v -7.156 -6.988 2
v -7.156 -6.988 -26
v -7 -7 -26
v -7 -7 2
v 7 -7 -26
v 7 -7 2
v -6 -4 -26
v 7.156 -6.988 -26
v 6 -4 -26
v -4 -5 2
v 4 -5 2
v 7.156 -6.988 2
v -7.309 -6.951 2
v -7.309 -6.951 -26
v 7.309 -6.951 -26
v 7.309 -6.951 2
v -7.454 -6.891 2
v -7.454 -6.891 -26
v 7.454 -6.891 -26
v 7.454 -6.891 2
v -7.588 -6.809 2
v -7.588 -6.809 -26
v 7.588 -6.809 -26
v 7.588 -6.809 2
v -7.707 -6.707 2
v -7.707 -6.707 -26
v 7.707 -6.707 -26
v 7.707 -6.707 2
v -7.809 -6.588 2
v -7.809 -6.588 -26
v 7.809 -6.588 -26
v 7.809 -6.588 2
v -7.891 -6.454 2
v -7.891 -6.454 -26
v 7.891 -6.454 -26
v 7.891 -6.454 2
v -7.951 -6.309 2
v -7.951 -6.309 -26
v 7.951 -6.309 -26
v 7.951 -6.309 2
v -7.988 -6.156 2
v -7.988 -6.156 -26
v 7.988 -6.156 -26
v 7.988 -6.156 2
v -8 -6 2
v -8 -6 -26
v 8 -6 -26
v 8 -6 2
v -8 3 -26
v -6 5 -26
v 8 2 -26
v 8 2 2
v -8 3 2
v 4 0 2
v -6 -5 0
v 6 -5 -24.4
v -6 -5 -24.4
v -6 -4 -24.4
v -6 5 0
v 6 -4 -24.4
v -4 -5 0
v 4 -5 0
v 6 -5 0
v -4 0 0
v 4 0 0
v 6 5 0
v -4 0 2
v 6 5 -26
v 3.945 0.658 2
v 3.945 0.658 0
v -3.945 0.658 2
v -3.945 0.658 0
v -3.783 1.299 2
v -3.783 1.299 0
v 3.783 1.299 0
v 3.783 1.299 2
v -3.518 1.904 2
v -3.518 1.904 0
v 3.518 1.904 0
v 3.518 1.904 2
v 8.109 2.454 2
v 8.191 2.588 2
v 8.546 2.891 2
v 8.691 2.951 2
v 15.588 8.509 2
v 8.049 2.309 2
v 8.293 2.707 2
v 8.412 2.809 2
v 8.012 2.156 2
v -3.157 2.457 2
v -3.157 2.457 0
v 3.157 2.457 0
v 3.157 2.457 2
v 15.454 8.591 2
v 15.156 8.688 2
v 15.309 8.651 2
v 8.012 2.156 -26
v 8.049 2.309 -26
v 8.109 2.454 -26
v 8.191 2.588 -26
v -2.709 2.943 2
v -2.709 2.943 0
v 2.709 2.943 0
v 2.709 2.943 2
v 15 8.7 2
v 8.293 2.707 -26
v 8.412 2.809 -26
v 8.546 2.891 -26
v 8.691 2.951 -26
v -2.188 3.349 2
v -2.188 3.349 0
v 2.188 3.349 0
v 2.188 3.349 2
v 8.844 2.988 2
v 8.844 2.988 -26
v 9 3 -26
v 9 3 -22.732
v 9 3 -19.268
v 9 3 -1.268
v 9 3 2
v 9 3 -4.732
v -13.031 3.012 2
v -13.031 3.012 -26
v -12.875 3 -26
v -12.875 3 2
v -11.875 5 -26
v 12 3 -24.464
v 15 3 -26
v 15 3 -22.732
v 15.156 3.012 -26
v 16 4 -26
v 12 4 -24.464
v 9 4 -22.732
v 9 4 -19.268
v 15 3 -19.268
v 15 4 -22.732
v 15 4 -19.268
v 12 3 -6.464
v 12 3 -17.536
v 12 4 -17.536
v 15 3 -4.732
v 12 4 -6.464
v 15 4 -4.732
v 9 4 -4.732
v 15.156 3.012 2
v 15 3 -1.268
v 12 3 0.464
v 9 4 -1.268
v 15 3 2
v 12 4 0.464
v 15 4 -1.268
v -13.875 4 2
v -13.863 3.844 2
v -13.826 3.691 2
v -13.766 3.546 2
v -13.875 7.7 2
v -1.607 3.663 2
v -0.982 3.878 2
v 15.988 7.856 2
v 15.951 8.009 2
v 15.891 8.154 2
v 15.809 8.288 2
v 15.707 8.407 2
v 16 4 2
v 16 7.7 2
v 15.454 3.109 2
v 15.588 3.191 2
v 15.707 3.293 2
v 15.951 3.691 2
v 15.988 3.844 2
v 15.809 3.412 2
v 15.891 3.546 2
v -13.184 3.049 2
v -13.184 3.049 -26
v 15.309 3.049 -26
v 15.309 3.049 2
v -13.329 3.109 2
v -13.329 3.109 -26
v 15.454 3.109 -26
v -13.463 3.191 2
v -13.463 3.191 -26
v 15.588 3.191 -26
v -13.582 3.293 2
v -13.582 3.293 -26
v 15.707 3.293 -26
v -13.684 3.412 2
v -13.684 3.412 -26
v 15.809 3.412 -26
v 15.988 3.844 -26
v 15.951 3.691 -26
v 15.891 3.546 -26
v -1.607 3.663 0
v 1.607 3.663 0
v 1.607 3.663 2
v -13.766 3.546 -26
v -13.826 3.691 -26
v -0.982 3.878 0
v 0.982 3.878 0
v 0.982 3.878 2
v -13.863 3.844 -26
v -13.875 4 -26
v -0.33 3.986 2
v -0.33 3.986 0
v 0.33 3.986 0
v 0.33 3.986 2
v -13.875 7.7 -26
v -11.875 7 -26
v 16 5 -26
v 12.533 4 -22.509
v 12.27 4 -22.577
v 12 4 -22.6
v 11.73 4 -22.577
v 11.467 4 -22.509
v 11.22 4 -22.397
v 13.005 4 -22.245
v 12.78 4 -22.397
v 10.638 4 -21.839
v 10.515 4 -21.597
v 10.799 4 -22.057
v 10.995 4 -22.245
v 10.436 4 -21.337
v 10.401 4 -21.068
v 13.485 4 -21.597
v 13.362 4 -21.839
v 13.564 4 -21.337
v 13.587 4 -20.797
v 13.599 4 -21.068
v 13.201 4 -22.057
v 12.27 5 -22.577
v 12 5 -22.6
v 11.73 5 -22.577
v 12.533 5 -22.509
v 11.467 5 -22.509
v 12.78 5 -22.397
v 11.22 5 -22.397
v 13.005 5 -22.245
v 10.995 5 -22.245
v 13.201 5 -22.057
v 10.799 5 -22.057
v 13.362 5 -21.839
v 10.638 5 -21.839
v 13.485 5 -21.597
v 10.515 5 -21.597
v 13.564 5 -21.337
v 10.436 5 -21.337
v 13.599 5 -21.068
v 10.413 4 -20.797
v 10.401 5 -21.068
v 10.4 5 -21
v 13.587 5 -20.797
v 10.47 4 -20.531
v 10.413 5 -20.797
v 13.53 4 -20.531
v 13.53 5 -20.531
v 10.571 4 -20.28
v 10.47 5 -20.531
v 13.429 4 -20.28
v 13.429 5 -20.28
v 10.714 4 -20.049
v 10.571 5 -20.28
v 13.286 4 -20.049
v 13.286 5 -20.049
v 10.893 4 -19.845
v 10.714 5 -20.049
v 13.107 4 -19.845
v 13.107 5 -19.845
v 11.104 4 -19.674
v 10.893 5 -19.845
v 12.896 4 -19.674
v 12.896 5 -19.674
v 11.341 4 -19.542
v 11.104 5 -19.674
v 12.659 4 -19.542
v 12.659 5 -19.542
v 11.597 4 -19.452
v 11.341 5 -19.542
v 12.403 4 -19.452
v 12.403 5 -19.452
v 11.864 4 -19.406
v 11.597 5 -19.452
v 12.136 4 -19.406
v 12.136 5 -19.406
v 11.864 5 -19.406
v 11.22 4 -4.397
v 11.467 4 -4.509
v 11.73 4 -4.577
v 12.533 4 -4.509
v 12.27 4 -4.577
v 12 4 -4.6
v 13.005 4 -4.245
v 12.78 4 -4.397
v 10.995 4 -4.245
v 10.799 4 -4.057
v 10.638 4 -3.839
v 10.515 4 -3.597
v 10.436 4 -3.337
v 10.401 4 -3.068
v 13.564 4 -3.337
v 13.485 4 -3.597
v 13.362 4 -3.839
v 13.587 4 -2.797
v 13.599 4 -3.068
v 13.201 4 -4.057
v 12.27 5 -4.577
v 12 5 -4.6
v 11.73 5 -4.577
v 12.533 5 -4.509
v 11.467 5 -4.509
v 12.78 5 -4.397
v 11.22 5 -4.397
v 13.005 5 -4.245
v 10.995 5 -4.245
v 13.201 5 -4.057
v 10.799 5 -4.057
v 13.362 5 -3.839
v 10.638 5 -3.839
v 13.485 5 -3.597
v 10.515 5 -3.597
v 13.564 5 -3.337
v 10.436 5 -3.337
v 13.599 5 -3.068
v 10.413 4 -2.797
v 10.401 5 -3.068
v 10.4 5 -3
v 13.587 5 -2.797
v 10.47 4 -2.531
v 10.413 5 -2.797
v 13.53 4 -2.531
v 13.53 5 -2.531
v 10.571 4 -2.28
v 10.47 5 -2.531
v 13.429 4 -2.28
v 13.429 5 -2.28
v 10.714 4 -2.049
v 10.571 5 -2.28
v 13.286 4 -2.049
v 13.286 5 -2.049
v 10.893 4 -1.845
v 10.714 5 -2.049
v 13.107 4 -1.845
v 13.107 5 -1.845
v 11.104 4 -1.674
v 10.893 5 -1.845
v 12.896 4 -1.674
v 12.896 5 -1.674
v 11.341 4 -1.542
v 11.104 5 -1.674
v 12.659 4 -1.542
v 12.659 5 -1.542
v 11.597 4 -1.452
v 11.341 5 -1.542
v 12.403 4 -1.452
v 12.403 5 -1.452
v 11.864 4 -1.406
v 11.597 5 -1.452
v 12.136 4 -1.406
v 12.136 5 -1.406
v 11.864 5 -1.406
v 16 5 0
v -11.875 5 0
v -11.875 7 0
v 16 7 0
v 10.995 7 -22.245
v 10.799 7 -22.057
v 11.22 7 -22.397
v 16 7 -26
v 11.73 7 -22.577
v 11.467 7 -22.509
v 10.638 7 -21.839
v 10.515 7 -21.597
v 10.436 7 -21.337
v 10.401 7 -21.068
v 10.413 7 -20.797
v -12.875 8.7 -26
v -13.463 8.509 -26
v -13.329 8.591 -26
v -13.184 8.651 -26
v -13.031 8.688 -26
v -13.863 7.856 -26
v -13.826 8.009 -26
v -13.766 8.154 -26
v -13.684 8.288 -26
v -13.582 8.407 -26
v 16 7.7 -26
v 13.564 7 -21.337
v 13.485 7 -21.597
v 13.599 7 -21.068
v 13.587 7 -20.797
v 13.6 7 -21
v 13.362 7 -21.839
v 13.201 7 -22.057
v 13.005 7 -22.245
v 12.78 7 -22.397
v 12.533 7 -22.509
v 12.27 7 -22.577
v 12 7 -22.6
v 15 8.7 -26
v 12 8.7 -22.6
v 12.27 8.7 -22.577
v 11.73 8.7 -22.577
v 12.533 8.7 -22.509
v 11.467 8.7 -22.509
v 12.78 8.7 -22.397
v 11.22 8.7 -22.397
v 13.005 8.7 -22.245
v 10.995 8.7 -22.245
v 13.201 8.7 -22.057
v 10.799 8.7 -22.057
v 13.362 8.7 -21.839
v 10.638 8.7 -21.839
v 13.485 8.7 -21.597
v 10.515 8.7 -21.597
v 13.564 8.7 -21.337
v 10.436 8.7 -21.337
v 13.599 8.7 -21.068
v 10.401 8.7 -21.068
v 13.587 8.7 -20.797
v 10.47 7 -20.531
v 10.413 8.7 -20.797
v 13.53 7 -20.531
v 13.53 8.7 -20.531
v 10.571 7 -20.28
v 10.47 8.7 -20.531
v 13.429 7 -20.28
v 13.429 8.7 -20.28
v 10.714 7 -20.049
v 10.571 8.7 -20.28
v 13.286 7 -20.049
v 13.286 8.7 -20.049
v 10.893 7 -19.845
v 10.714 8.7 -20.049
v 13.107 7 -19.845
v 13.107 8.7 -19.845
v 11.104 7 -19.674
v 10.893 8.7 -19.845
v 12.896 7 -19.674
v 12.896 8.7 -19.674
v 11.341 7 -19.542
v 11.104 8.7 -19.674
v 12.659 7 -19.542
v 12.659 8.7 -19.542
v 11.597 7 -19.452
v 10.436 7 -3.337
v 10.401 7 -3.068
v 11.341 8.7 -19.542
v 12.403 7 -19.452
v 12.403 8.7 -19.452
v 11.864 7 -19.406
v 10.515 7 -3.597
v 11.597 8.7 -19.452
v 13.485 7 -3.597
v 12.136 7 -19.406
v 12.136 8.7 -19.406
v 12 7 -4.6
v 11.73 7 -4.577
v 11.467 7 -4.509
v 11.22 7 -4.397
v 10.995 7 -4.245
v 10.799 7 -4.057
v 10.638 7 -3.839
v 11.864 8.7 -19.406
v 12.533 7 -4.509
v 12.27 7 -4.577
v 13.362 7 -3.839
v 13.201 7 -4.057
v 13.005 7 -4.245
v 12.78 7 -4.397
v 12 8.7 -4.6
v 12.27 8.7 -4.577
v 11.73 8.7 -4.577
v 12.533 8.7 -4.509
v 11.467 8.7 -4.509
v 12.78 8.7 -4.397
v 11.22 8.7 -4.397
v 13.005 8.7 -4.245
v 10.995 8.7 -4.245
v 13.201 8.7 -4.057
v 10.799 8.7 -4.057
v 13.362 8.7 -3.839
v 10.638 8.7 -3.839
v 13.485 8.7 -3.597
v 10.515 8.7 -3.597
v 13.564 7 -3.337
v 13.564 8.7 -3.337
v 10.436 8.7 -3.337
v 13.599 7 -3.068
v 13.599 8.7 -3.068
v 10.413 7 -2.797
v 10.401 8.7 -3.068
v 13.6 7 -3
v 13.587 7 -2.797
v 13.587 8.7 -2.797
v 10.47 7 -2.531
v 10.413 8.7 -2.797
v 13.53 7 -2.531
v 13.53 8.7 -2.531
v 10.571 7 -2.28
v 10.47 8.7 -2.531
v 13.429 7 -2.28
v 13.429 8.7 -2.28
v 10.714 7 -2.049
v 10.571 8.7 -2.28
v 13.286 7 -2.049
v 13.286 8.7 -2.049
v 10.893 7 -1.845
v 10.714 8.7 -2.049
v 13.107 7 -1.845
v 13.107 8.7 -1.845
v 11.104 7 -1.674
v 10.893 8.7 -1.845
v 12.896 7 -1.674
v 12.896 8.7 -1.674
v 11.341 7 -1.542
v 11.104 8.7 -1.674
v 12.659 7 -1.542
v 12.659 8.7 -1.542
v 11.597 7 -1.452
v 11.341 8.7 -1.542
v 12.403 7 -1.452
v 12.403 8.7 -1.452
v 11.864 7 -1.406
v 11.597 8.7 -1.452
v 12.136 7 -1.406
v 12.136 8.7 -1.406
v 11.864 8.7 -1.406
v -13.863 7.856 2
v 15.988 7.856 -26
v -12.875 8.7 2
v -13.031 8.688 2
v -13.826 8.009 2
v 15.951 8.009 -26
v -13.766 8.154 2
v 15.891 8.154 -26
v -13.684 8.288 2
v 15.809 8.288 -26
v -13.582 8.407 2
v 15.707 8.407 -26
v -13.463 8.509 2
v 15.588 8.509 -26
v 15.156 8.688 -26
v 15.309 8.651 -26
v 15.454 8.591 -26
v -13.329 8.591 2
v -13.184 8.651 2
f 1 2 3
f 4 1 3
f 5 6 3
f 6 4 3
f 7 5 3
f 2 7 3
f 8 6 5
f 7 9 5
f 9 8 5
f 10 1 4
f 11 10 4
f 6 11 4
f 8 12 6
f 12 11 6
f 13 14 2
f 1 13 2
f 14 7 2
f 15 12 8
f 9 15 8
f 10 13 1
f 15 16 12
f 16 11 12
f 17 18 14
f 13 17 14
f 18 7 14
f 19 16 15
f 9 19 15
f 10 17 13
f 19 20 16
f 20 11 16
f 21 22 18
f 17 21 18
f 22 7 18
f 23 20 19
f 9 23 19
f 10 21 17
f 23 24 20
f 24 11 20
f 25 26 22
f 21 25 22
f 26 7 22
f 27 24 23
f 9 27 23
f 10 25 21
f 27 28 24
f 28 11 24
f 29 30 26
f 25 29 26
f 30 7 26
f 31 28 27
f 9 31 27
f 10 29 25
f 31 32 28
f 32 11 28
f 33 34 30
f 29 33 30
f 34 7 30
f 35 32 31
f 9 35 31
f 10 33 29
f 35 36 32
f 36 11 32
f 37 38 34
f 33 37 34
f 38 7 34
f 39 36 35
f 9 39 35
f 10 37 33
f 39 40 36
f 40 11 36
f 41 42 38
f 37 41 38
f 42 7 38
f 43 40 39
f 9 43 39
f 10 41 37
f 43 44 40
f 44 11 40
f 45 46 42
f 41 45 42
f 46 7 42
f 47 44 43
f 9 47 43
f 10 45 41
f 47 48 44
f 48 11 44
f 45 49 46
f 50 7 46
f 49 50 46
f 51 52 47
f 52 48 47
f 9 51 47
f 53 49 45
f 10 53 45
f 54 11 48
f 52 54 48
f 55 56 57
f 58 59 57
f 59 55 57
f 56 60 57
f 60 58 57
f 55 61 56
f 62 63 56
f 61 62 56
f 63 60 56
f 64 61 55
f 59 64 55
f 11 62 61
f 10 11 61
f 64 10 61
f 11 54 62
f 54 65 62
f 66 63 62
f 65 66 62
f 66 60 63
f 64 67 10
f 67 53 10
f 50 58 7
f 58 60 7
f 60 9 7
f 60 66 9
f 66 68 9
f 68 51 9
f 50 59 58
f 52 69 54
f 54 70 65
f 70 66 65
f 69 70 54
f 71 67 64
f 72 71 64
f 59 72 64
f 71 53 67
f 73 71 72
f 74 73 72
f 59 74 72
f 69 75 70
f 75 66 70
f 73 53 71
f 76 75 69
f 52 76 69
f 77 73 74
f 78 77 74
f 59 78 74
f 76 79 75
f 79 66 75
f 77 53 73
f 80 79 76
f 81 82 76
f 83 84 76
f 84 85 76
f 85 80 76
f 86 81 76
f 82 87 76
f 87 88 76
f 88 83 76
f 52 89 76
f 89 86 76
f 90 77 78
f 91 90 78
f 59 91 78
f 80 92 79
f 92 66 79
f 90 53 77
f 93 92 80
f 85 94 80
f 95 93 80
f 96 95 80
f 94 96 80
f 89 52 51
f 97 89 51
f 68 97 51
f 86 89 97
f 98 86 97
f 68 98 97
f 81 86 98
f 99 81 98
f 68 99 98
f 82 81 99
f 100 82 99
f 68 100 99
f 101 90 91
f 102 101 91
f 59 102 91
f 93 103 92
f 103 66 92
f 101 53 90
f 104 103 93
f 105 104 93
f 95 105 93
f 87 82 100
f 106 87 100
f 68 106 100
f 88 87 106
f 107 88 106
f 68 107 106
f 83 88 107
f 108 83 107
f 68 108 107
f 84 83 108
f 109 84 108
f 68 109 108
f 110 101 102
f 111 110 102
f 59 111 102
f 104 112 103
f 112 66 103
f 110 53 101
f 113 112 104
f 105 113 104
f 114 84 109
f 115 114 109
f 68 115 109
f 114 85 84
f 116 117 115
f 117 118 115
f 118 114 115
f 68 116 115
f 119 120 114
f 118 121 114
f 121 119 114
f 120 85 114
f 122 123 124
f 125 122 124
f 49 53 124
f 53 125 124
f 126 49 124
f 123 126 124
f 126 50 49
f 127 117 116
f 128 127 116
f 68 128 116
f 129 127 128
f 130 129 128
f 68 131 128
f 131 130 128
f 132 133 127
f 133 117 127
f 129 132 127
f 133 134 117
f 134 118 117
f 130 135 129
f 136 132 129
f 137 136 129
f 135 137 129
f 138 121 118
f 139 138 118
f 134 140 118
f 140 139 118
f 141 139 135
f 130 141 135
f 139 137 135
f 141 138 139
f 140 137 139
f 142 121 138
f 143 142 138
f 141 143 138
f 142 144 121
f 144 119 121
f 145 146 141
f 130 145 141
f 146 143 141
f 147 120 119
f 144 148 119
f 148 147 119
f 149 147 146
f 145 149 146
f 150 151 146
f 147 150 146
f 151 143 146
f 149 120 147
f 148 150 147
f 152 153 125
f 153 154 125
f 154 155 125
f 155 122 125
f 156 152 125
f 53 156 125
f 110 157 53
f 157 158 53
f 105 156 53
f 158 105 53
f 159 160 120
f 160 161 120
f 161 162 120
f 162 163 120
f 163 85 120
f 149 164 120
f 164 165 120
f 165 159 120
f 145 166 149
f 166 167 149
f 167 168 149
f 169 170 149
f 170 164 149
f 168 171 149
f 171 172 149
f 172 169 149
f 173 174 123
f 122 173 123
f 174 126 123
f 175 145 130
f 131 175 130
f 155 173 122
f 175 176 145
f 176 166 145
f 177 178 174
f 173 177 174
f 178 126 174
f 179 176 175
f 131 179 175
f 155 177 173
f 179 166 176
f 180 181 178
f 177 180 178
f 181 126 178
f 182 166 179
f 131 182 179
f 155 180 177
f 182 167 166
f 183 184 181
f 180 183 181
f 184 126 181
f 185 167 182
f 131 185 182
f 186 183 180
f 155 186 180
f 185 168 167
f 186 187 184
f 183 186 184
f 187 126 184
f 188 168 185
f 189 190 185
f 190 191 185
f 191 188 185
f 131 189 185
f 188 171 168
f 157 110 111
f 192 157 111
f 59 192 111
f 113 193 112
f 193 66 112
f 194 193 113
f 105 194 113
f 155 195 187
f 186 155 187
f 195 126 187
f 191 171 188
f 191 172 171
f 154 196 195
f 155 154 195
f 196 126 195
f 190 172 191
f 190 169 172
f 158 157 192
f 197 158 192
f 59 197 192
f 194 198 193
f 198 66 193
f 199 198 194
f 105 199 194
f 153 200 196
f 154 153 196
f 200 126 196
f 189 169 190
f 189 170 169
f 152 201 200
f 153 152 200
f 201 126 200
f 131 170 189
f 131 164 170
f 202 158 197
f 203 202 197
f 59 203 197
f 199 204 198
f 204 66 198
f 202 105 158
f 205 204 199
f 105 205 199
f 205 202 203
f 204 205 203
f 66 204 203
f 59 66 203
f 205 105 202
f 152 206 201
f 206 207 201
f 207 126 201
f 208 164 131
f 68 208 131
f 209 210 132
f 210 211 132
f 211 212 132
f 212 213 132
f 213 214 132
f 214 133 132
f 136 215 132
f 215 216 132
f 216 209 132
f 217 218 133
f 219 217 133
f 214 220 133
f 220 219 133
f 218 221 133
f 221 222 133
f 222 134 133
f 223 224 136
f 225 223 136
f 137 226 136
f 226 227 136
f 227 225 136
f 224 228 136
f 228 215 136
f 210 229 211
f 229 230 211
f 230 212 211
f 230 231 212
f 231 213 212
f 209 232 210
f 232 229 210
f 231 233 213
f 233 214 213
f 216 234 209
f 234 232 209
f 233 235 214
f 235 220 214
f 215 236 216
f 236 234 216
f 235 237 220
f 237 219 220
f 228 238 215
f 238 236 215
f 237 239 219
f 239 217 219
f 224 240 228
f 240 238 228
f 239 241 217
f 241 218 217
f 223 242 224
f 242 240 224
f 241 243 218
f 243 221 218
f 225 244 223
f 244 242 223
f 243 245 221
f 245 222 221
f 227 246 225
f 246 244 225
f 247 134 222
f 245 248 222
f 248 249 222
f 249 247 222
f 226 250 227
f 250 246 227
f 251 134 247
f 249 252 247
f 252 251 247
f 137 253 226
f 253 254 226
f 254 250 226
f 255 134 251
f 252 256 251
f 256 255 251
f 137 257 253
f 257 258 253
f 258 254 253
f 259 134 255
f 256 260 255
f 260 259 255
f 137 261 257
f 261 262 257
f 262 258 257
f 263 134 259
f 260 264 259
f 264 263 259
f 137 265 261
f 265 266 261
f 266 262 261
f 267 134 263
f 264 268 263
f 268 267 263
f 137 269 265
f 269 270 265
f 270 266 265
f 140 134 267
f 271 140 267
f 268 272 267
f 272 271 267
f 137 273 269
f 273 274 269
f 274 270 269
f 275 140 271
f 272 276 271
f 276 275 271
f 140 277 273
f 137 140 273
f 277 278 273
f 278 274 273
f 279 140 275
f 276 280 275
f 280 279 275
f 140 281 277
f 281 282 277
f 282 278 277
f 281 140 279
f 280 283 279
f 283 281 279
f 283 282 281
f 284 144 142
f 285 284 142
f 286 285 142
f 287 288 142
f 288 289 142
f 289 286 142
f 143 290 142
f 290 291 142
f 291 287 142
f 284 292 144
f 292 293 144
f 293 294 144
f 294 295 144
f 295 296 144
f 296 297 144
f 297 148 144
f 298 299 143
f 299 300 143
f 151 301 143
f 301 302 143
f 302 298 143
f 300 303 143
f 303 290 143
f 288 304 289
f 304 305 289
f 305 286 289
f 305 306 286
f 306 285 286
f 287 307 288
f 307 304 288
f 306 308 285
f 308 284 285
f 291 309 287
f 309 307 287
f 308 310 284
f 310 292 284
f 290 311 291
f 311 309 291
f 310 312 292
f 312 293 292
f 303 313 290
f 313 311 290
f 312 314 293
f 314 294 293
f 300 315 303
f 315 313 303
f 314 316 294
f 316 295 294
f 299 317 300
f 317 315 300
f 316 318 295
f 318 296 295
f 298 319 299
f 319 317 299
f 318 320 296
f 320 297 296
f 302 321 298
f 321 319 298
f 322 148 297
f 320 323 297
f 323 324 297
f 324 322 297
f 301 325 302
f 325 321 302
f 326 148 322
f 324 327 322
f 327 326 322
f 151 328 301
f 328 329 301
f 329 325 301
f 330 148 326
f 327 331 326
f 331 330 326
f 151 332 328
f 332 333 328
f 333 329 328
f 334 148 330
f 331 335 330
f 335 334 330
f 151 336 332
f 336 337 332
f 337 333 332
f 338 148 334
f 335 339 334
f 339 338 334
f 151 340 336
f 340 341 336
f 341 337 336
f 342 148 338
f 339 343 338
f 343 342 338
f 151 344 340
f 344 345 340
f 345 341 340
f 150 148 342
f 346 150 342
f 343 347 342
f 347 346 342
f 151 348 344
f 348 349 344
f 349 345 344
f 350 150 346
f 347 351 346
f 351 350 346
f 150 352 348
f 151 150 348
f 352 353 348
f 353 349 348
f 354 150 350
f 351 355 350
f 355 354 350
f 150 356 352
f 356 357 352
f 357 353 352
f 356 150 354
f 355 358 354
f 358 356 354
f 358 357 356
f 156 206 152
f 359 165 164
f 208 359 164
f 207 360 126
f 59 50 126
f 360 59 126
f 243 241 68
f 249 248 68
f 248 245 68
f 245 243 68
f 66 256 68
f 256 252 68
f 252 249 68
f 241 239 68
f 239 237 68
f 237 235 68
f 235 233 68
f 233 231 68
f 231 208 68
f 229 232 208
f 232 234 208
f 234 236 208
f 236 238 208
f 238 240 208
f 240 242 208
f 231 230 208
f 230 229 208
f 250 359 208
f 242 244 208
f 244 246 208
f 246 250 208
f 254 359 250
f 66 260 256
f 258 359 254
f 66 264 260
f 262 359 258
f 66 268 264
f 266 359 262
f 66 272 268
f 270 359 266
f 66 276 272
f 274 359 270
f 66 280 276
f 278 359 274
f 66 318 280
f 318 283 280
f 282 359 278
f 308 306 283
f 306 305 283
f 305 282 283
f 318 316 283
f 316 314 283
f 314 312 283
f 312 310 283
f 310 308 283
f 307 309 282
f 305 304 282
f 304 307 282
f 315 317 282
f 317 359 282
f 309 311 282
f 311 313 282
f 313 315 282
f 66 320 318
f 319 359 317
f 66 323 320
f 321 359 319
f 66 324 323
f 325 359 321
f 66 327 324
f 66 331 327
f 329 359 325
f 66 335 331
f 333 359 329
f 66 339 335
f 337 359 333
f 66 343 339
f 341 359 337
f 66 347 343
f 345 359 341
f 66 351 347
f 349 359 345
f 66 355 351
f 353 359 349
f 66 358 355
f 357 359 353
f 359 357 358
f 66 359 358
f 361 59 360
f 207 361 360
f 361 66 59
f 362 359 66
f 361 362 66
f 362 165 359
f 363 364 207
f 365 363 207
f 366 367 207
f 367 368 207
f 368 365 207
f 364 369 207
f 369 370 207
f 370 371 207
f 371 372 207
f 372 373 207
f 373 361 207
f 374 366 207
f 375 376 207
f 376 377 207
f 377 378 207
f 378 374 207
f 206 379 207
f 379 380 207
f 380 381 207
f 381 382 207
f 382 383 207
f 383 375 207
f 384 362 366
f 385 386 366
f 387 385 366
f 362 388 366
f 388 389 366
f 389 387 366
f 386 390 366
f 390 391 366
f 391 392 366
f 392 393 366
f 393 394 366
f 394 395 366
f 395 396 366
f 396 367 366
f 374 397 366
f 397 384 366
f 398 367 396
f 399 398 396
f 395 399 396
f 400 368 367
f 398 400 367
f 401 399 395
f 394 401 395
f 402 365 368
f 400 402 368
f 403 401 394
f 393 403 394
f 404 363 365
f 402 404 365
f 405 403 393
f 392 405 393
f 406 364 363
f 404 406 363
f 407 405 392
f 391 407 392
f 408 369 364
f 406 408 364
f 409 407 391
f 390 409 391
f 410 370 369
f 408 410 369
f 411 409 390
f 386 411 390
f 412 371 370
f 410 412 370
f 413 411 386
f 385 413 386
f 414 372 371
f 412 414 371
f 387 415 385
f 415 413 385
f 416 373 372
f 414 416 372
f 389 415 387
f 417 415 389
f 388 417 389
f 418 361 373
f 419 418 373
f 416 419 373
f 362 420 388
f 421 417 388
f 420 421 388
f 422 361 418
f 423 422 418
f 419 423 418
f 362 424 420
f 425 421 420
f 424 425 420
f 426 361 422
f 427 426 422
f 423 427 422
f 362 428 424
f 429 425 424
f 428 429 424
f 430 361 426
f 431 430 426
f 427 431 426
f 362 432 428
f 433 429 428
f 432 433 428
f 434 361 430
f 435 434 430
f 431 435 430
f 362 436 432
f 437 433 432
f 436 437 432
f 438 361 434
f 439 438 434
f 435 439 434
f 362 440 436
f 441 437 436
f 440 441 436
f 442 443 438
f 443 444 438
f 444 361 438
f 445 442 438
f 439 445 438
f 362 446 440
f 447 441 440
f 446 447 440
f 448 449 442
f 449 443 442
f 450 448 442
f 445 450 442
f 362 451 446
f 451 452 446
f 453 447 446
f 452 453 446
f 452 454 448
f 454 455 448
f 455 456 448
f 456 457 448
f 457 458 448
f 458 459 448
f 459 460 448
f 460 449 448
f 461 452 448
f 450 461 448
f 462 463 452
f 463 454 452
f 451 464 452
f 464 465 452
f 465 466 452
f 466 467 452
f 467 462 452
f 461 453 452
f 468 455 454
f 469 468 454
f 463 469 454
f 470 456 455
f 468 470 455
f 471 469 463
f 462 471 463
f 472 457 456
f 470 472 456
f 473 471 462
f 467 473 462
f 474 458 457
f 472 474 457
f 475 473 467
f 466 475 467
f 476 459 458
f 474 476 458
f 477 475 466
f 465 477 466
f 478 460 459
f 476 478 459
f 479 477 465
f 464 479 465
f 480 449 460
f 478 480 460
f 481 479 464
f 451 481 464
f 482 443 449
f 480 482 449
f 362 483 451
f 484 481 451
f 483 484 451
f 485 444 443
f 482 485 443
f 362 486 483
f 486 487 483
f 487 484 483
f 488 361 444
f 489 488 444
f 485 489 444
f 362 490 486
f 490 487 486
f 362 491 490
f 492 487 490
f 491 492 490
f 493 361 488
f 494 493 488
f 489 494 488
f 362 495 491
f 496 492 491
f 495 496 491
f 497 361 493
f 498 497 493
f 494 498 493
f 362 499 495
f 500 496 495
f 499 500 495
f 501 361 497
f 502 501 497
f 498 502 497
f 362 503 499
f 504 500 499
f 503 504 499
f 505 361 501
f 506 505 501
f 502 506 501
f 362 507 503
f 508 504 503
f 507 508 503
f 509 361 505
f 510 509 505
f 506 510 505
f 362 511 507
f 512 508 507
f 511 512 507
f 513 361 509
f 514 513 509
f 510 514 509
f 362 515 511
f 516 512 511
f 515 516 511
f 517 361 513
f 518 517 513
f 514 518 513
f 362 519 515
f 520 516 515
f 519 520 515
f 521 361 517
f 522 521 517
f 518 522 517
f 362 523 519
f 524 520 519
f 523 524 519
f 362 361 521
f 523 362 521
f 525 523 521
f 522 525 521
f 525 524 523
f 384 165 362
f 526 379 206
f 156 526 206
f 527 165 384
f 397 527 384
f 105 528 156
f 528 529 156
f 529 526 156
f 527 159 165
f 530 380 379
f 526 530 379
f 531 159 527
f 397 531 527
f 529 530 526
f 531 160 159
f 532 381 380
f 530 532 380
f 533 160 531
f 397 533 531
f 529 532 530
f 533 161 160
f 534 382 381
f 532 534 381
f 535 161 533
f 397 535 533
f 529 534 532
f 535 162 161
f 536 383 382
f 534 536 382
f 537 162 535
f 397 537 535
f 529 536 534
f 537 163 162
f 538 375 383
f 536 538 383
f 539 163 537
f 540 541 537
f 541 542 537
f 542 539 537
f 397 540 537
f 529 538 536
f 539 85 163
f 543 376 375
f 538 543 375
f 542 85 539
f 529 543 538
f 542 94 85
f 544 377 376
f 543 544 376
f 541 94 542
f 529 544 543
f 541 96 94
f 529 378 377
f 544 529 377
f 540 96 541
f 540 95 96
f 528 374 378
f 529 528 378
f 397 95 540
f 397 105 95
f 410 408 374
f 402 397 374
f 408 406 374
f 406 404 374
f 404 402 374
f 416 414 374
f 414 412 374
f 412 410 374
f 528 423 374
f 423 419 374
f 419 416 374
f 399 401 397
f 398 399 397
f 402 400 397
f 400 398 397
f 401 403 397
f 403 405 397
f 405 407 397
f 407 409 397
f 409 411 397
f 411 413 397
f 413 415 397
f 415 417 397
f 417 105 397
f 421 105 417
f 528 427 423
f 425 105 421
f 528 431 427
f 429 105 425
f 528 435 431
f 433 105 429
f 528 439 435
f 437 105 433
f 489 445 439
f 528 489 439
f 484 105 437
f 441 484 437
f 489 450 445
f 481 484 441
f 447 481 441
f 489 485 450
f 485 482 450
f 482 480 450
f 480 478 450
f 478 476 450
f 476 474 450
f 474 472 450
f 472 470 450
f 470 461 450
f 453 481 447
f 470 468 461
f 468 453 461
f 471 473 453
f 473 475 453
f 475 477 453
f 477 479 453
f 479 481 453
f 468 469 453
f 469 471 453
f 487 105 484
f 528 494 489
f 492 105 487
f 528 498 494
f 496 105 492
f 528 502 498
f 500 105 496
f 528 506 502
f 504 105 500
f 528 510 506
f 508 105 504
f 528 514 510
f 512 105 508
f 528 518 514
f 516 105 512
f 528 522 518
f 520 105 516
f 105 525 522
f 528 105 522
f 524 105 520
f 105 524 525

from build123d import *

# Parameters (mm, degrees)
EXTRUDE_1_DEPTH          = 2
EXTRUDE_2_DEPTH          = 26
SKETCH_6_W               = 12
SKETCH_6_H               = 1
EXTRUDE_3_DEPTH          = 1.6
CUT_EXTRUDE_1_DEPTH      = 11
CUT_EXTRUDE_1_DEPTH_BACK = 1
SKETCH_5_R               = 1.6
CUT_EXTRUDE_2_DEPTH      = 5.7


with BuildPart() as part:
    # 草图1 → 凸台-拉伸1 (new body)
    with BuildSketch(Plane.XY):
        with BuildLine():
            ThreePointArc((8, 2), (8.292893219, 2.707106781), (9, 3))
            Line((9, 3), (15, 3))
            ThreePointArc((15, 3), (15.707106781, 3.292893219), (16, 4))
            Line((16, 4), (16, 7.7))
            ThreePointArc((16, 7.7), (15.707106781, 8.407106781), (15, 8.7))
            Line((15, 8.7), (-12.875, 8.7))
            ThreePointArc((-12.875, 8.7), (-13.582106781, 8.407106781), (-13.875, 7.7))
            Line((-13.875, 7.7), (-13.875, 4))
            ThreePointArc((-13.875, 4), (-13.582106781, 3.292893219), (-12.875, 3))
            Line((-12.875, 3), (-8, 3))
            Line((-8, 3), (-8, -6))
            ThreePointArc((-8, -6), (-7.707106781, -6.707106781), (-7, -7))
            Line((-7, -7), (7, -7))
            ThreePointArc((7, -7), (7.707106781, -6.707106781), (8, -6))
            Line((8, -6), (8, 2))
        make_face()
        with BuildLine():
            Line((4, -5), (-4, -5))
            Line((-4, -5), (-4, 0))
            ThreePointArc((-4, 0), (0, 4), (4, 0))
            Line((4, 0), (4, -5))
        make_face(mode=Mode.SUBTRACT)
    extrude(amount=EXTRUDE_1_DEPTH)

    # 草图2 → 凸台-拉伸2 (add)
    with BuildSketch(Plane(origin=(0, 0, 0), x_dir=(-1, 0, 0), z_dir=(0, 0, -1))):
        with BuildLine():
            Line((6, -4), (6, -5))
            Line((6, -5), (5, -5))
            Line((5, -5), (-5, -5))
            Line((-5, -5), (-6, -5))
            Line((-6, -5), (-6, -4))
            Line((-6, -4), (-6, 4))
            Line((-6, 4), (-6, 5))
            Line((-6, 5), (-16, 5))
            Line((-16, 5), (-16, 4))
            ThreePointArc((-16, 4), (-15.707106781, 3.292893219), (-15, 3))
            Line((-15, 3), (-9, 3))
            ThreePointArc((-9, 3), (-8.292893219, 2.707106781), (-8, 2))
            Line((-8, 2), (-8, -6))
            ThreePointArc((-8, -6), (-7.707106781, -6.707106781), (-7, -7))
            Line((-7, -7), (7, -7))
            ThreePointArc((7, -7), (7.707106781, -6.707106781), (8, -6))
            Line((8, -6), (8, 3))
            Line((8, 3), (12.875, 3))
            ThreePointArc((12.875, 3), (13.582106781, 3.292893219), (13.875, 4))
            Line((13.875, 4), (13.875, 7.7))
            ThreePointArc((13.875, 7.7), (13.582106781, 8.407106781), (12.875, 8.7))
            Line((12.875, 8.7), (-15, 8.7))
            ThreePointArc((-15, 8.7), (-15.707106781, 8.407106781), (-16, 7.7))
            Line((-16, 7.7), (-16, 7))
            Line((-16, 7), (11.875, 7))
            Line((11.875, 7), (11.875, 5))
            Line((11.875, 5), (6, 5))
            Line((6, 5), (6, 4))
            Line((6, 4), (6, -4))
        make_face()
    extrude(amount=EXTRUDE_2_DEPTH)

    # 草图6 → 凸台-拉伸3 (add)
    with BuildSketch(Plane(origin=(0, 0, -26), x_dir=(-1, 0, 0), z_dir=(0, 0, -1))):
        with Locations((0, -4.5)):
            Rectangle(SKETCH_6_W, SKETCH_6_H)
    extrude(amount=-EXTRUDE_3_DEPTH)

    # 草图4 → 切除-拉伸1 (cut, two sides)
    with BuildSketch(Plane.XZ.offset(-3)) as cut_extrude_1_sk:
        Polygon((15, -19.267949192), (12, -17.535898385), (9, -19.267949192), (9, -22.732050808), (12, -24.464101615), (15, -22.732050808), align=None)
        Polygon((9, -1.267949192), (9, -4.732050808), (12, -6.464101615), (15, -4.732050808), (15, -1.267949192), (12, 0.464101615), align=None)
    extrude(amount=CUT_EXTRUDE_1_DEPTH, mode=Mode.SUBTRACT)
    extrude(cut_extrude_1_sk.sketch, amount=-CUT_EXTRUDE_1_DEPTH_BACK, mode=Mode.SUBTRACT)

    # 草图5 → 切除-拉伸2 (cut, through all)
    with BuildSketch(Plane.XZ.offset(-4)):
        with Locations((12, -21)):
            Circle(SKETCH_5_R)
        with Locations((12, -3)):
            Circle(SKETCH_5_R)
    extrude(amount=-CUT_EXTRUDE_2_DEPTH, mode=Mode.SUBTRACT)


solid = part.part
